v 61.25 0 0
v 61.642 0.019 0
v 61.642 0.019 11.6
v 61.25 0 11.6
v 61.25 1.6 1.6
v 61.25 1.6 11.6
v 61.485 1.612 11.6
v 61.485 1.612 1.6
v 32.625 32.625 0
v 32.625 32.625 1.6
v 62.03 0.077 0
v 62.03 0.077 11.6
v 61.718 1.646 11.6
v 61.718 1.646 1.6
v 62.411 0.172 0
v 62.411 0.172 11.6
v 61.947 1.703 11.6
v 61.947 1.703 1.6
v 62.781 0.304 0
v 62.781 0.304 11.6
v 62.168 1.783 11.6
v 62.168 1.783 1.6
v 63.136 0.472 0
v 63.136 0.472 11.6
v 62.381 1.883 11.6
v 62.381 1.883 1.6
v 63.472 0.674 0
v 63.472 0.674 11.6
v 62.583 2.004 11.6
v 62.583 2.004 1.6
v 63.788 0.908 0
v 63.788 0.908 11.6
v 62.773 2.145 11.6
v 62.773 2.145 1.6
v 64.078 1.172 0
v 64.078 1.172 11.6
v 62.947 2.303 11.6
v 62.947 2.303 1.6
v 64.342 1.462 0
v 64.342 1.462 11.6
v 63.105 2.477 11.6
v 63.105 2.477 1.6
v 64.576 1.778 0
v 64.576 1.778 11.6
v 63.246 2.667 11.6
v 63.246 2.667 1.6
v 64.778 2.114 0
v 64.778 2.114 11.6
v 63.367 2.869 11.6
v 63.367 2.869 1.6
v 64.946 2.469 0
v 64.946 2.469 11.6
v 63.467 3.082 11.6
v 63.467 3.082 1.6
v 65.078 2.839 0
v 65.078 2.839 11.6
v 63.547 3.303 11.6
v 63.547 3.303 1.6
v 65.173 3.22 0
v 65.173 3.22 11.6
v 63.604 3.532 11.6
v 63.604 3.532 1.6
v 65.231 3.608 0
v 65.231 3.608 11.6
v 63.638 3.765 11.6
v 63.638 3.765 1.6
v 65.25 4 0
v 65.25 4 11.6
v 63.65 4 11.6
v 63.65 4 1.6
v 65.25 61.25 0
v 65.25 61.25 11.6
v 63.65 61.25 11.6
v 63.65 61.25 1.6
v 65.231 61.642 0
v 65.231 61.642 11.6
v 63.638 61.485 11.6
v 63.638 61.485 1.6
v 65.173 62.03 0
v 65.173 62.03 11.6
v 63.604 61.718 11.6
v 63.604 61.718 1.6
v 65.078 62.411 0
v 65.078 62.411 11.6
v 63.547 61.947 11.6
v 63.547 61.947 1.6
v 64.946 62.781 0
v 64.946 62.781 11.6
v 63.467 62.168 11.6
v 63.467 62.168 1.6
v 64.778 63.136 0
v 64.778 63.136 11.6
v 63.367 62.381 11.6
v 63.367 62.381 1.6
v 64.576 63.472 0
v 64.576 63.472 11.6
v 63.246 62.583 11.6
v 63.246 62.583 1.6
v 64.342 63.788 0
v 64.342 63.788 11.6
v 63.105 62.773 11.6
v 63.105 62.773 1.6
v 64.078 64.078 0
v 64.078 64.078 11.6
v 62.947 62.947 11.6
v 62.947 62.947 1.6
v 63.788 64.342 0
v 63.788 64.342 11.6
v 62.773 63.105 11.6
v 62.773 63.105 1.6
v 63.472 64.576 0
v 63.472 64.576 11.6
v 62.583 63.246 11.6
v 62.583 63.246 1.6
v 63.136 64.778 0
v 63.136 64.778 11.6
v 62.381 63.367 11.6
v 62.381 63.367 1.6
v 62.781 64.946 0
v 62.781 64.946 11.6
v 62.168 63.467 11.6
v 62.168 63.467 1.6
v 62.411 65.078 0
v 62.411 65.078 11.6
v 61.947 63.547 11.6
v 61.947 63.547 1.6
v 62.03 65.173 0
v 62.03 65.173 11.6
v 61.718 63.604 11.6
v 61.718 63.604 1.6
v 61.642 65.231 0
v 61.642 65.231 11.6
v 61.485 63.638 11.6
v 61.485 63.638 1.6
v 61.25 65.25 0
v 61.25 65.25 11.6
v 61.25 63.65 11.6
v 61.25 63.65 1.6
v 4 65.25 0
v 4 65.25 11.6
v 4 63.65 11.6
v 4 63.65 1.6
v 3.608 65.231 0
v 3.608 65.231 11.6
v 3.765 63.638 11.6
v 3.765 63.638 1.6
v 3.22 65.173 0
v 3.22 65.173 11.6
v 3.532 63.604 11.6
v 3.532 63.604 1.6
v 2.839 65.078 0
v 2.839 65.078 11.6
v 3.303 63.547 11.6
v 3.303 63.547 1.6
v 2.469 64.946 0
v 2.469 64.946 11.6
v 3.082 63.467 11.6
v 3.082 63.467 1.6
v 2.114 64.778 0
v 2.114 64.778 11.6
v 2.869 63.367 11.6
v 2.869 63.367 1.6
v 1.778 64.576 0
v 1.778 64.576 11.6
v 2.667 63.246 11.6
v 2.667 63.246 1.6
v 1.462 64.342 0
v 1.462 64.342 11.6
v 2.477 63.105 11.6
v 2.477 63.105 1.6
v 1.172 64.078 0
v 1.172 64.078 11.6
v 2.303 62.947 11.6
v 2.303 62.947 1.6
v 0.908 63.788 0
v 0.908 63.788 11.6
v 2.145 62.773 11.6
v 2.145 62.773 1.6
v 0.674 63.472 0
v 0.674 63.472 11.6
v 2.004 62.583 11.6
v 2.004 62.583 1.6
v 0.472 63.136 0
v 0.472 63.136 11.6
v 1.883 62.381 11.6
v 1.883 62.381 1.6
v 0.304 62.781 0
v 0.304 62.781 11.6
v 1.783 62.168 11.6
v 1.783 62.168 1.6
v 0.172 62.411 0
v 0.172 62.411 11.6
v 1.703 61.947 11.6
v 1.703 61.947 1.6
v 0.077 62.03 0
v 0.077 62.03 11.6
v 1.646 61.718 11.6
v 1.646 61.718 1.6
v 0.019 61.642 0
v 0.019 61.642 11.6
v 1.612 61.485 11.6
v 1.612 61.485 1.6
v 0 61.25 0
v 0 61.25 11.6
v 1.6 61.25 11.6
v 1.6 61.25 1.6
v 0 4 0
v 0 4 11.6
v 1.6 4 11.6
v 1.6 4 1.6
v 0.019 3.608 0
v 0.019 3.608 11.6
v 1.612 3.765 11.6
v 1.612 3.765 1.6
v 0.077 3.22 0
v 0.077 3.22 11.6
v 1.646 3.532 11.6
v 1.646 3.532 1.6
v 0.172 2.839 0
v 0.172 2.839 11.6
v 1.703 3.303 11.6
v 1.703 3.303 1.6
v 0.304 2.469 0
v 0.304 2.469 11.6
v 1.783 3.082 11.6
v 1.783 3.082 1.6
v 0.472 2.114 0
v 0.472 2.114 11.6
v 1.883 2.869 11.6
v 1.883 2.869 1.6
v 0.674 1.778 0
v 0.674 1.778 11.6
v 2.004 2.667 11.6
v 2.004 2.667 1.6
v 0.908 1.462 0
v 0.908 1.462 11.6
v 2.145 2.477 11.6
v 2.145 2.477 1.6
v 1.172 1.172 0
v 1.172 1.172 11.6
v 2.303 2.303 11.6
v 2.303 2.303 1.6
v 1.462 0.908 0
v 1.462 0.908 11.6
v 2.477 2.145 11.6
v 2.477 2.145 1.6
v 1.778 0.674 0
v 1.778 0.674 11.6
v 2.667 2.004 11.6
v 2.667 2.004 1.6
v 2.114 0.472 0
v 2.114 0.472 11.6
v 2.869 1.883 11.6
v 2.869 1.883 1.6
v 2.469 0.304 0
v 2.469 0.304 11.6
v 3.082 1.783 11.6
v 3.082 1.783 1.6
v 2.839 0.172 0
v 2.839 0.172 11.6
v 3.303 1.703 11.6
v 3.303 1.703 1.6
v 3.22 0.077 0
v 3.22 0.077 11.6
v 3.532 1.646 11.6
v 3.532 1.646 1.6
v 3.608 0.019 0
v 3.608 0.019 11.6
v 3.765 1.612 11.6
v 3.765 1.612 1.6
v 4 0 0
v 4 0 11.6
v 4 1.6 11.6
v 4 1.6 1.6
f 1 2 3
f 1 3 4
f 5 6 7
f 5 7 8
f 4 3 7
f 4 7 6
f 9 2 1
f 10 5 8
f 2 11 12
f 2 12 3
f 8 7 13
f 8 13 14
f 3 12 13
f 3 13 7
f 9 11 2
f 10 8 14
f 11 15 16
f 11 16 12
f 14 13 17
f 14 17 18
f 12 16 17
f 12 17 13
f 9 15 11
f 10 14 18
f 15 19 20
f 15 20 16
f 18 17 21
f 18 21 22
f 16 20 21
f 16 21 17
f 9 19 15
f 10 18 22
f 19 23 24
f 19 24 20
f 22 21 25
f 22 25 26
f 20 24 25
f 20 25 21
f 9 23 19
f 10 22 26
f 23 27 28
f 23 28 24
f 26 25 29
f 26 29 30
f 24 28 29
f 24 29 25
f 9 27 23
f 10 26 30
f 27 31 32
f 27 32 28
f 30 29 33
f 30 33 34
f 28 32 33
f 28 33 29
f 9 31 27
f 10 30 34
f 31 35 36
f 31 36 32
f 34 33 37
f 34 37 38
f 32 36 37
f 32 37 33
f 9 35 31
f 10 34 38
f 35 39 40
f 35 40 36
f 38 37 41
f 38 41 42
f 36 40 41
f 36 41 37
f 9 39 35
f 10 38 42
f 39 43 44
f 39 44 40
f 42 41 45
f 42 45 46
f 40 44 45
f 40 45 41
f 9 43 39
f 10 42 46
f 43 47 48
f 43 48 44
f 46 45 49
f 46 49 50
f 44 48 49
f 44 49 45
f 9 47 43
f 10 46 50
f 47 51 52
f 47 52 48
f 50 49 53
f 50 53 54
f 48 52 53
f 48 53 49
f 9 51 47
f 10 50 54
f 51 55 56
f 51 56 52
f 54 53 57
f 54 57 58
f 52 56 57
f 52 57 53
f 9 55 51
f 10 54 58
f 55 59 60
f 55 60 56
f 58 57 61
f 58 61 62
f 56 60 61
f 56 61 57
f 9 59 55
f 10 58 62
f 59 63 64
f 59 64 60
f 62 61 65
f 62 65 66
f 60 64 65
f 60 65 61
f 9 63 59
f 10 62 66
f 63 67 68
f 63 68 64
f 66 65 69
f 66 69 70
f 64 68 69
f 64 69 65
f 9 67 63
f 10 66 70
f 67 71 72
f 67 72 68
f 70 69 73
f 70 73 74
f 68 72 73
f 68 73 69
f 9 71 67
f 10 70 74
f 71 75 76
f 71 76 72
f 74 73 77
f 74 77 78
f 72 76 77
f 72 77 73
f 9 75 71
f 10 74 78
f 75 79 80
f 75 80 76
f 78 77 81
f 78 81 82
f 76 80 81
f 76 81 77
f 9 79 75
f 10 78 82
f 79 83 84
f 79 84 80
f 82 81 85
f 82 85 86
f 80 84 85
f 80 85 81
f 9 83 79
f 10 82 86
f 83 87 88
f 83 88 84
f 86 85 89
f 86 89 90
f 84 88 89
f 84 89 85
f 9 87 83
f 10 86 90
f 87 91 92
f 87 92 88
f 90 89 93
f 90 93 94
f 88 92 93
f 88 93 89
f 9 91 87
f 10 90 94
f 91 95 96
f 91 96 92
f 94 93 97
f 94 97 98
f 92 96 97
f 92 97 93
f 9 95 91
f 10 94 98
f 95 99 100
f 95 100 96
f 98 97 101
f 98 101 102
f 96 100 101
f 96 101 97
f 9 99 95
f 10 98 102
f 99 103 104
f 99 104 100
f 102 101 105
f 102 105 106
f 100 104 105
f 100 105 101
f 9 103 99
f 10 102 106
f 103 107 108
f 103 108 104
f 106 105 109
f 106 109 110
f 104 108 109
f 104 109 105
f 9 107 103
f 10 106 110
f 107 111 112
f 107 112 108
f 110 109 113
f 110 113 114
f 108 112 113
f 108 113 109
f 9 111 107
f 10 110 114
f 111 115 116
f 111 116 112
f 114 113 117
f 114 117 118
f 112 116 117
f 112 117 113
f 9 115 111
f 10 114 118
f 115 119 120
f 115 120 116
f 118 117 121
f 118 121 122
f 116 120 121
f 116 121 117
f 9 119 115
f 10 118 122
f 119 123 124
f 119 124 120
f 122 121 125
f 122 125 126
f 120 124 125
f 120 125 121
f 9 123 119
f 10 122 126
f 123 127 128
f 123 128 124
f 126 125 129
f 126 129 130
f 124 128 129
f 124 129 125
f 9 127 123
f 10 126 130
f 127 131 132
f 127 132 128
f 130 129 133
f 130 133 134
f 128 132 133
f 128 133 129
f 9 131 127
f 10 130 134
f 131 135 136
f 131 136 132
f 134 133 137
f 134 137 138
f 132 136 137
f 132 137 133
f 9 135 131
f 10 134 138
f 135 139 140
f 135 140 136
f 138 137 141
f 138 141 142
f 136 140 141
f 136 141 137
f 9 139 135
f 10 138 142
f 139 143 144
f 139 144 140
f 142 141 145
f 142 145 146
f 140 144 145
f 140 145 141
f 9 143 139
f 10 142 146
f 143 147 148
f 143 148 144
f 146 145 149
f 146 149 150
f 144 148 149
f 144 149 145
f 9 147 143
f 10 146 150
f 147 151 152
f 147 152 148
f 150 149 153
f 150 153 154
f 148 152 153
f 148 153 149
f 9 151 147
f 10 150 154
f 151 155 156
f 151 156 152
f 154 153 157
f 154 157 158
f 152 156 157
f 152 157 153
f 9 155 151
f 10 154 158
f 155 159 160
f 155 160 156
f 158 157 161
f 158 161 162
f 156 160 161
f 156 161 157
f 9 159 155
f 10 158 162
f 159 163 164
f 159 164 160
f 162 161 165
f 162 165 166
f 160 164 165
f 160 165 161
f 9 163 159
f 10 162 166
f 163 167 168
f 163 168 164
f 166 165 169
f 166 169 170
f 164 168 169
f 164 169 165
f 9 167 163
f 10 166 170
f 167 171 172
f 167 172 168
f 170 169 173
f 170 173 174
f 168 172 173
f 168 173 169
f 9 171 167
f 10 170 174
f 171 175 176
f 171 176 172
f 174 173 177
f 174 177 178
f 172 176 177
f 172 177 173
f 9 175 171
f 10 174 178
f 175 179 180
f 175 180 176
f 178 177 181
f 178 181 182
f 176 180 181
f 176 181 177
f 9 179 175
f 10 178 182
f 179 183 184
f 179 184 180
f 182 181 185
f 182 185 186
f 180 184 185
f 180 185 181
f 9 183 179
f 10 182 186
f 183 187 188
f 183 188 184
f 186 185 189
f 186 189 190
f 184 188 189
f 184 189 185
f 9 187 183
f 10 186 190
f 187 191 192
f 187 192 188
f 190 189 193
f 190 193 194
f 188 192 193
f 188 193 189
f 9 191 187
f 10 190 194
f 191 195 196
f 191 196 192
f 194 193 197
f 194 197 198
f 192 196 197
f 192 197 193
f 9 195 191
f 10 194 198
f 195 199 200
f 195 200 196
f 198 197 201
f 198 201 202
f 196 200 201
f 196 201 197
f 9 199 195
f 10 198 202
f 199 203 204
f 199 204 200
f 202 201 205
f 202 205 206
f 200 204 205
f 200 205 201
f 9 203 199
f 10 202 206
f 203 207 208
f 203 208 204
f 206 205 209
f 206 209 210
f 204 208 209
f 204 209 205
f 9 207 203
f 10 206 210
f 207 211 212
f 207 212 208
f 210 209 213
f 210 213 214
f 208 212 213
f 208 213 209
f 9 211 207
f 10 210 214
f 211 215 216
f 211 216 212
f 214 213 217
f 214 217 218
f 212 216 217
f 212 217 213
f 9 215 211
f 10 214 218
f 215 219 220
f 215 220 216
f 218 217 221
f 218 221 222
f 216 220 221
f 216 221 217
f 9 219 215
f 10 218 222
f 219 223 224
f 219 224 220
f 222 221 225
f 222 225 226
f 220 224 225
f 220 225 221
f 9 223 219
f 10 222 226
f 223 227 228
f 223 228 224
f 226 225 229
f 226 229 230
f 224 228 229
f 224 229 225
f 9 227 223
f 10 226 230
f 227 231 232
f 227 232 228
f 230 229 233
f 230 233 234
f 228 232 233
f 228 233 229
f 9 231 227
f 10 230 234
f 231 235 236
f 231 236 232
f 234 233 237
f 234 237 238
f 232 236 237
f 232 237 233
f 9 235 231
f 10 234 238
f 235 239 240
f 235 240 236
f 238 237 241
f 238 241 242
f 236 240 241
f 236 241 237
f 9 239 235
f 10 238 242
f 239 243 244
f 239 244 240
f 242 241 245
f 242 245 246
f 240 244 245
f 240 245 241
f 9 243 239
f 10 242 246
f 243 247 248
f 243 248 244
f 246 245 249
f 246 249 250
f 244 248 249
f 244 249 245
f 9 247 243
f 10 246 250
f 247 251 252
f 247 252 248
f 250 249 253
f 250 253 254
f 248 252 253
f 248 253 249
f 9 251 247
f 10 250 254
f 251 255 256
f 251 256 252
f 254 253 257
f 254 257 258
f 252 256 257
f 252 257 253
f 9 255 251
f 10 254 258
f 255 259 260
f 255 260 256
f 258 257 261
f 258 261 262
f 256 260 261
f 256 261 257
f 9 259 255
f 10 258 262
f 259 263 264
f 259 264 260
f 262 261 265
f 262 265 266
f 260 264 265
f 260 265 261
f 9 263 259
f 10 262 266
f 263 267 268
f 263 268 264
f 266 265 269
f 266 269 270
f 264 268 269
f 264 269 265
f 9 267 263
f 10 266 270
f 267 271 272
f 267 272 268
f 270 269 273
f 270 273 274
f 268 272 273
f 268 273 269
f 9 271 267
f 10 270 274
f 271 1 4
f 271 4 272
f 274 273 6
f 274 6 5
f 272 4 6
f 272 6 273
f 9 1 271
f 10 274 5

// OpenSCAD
// v0.3 measured low-wall tray, 2026-09-08. Units: mm.
// POWERLESS FIT ONLY. Open top, no lid, fasteners, or powered-use retention.
// Dimensions: external 65.25 x 65.25 x 11.60; cavity 62.05 x 62.05 x 10.00.
// Rebuild with generate_v0_3_fit_tray.py after changing measured/design inputs.
// IMU is nested: assembly height 16.36, not Feather height + IMU height.
// Cable-end allowance 8.0 is provisional, not a measured bend radius.
show_guides = true; // Preview-only component envelopes; excluded from STL exports.
outer_profile = [[61.250000000,0.000000000],[61.642068561,0.019261093],[62.030361288,0.076858878],[62.411138709,0.172238657],[62.780733729,0.304481870],[63.135586947,0.472314943],[63.472280932,0.674121551],[63.787573137,0.907958187],[64.078427125,1.171572875],[64.342041813,1.462426863],[64.575878449,1.777719068],[64.777685057,2.114413053],[64.945518130,2.469266271],[65.077761343,2.838861291],[65.173141122,3.219638712],[65.230738907,3.607931439],[65.250000000,4.000000000],[65.250000000,61.250000000],[65.230738907,61.642068561],[65.173141122,62.030361288],[65.077761343,62.411138709],[64.945518130,62.780733729],[64.777685057,63.135586947],[64.575878449,63.472280932],[64.342041813,63.787573137],[64.078427125,64.078427125],[63.787573137,64.342041813],[63.472280932,64.575878449],[63.135586947,64.777685057],[62.780733729,64.945518130],[62.411138709,65.077761343],[62.030361288,65.173141122],[61.642068561,65.230738907],[61.250000000,65.250000000],[4.000000000,65.250000000],[3.607931439,65.230738907],[3.219638712,65.173141122],[2.838861291,65.077761343],[2.469266271,64.945518130],[2.114413053,64.777685057],[1.777719068,64.575878449],[1.462426863,64.342041813],[1.171572875,64.078427125],[0.907958187,63.787573137],[0.674121551,63.472280932],[0.472314943,63.135586947],[0.304481870,62.780733729],[0.172238657,62.411138709],[0.076858878,62.030361288],[0.019261093,61.642068561],[0.000000000,61.250000000],[0.000000000,4.000000000],[0.019261093,3.607931439],[0.076858878,3.219638712],[0.172238657,2.838861291],[0.304481870,2.469266271],[0.472314943,2.114413053],[0.674121551,1.777719068],[0.907958187,1.462426863],[1.171572875,1.171572875],[1.462426863,0.907958187],[1.777719068,0.674121551],[2.114413053,0.472314943],[2.469266271,0.304481870],[2.838861291,0.172238657],[3.219638712,0.076858878],[3.607931439,0.019261093],[4.000000000,0.000000000]];
inner_profile = [[61.250000000,1.600000000],[61.485241137,1.611556656],[61.718216773,1.646115327],[61.946683225,1.703343194],[62.168440238,1.782689122],[62.381352168,1.883388966],[62.583368559,2.004472930],[62.772543882,2.144774912],[62.947056275,2.302943725],[63.105225088,2.477456118],[63.245527070,2.666631441],[63.366611034,2.868647832],[63.467310878,3.081559762],[63.546656806,3.303316775],[63.603884673,3.531783227],[63.638443344,3.764758863],[63.650000000,4.000000000],[63.650000000,61.250000000],[63.638443344,61.485241137],[63.603884673,61.718216773],[63.546656806,61.946683225],[63.467310878,62.168440238],[63.366611034,62.381352168],[63.245527070,62.583368559],[63.105225088,62.772543882],[62.947056275,62.947056275],[62.772543882,63.105225088],[62.583368559,63.245527070],[62.381352168,63.366611034],[62.168440238,63.467310878],[61.946683225,63.546656806],[61.718216773,63.603884673],[61.485241137,63.638443344],[61.250000000,63.650000000],[4.000000000,63.650000000],[3.764758863,63.638443344],[3.531783227,63.603884673],[3.303316775,63.546656806],[3.081559762,63.467310878],[2.868647832,63.366611034],[2.666631441,63.245527070],[2.477456118,63.105225088],[2.302943725,62.947056275],[2.144774912,62.772543882],[2.004472930,62.583368559],[1.883388966,62.381352168],[1.782689122,62.168440238],[1.703343194,61.946683225],[1.646115327,61.718216773],[1.611556656,61.485241137],[1.600000000,61.250000000],[1.600000000,4.000000000],[1.611556656,3.764758863],[1.646115327,3.531783227],[1.703343194,3.303316775],[1.782689122,3.081559762],[1.883388966,2.868647832],[2.004472930,2.666631441],[2.144774912,2.477456118],[2.302943725,2.302943725],[2.477456118,2.144774912],[2.666631441,2.004472930],[2.868647832,1.883388966],[3.081559762,1.782689122],[3.303316775,1.703343194],[3.531783227,1.646115327],[3.764758863,1.611556656],[4.000000000,1.600000000]];
difference() {
    linear_extrude(height=11.60000) polygon(outer_profile);
    translate([0,0,1.60000])
        linear_extrude(height=11.00000) polygon(inner_profile);
}
if (show_guides) {
    %color([0.2,0.5,0.9,0.4]) translate([3.6,3.6,1.6])
        cube([52.05,22.8,16.36]);
    %color([0.9,0.6,0.2,0.4]) translate([3.6,29.400000000000002,1.6])
        cube([35.9,32.25,4.8]);
}
